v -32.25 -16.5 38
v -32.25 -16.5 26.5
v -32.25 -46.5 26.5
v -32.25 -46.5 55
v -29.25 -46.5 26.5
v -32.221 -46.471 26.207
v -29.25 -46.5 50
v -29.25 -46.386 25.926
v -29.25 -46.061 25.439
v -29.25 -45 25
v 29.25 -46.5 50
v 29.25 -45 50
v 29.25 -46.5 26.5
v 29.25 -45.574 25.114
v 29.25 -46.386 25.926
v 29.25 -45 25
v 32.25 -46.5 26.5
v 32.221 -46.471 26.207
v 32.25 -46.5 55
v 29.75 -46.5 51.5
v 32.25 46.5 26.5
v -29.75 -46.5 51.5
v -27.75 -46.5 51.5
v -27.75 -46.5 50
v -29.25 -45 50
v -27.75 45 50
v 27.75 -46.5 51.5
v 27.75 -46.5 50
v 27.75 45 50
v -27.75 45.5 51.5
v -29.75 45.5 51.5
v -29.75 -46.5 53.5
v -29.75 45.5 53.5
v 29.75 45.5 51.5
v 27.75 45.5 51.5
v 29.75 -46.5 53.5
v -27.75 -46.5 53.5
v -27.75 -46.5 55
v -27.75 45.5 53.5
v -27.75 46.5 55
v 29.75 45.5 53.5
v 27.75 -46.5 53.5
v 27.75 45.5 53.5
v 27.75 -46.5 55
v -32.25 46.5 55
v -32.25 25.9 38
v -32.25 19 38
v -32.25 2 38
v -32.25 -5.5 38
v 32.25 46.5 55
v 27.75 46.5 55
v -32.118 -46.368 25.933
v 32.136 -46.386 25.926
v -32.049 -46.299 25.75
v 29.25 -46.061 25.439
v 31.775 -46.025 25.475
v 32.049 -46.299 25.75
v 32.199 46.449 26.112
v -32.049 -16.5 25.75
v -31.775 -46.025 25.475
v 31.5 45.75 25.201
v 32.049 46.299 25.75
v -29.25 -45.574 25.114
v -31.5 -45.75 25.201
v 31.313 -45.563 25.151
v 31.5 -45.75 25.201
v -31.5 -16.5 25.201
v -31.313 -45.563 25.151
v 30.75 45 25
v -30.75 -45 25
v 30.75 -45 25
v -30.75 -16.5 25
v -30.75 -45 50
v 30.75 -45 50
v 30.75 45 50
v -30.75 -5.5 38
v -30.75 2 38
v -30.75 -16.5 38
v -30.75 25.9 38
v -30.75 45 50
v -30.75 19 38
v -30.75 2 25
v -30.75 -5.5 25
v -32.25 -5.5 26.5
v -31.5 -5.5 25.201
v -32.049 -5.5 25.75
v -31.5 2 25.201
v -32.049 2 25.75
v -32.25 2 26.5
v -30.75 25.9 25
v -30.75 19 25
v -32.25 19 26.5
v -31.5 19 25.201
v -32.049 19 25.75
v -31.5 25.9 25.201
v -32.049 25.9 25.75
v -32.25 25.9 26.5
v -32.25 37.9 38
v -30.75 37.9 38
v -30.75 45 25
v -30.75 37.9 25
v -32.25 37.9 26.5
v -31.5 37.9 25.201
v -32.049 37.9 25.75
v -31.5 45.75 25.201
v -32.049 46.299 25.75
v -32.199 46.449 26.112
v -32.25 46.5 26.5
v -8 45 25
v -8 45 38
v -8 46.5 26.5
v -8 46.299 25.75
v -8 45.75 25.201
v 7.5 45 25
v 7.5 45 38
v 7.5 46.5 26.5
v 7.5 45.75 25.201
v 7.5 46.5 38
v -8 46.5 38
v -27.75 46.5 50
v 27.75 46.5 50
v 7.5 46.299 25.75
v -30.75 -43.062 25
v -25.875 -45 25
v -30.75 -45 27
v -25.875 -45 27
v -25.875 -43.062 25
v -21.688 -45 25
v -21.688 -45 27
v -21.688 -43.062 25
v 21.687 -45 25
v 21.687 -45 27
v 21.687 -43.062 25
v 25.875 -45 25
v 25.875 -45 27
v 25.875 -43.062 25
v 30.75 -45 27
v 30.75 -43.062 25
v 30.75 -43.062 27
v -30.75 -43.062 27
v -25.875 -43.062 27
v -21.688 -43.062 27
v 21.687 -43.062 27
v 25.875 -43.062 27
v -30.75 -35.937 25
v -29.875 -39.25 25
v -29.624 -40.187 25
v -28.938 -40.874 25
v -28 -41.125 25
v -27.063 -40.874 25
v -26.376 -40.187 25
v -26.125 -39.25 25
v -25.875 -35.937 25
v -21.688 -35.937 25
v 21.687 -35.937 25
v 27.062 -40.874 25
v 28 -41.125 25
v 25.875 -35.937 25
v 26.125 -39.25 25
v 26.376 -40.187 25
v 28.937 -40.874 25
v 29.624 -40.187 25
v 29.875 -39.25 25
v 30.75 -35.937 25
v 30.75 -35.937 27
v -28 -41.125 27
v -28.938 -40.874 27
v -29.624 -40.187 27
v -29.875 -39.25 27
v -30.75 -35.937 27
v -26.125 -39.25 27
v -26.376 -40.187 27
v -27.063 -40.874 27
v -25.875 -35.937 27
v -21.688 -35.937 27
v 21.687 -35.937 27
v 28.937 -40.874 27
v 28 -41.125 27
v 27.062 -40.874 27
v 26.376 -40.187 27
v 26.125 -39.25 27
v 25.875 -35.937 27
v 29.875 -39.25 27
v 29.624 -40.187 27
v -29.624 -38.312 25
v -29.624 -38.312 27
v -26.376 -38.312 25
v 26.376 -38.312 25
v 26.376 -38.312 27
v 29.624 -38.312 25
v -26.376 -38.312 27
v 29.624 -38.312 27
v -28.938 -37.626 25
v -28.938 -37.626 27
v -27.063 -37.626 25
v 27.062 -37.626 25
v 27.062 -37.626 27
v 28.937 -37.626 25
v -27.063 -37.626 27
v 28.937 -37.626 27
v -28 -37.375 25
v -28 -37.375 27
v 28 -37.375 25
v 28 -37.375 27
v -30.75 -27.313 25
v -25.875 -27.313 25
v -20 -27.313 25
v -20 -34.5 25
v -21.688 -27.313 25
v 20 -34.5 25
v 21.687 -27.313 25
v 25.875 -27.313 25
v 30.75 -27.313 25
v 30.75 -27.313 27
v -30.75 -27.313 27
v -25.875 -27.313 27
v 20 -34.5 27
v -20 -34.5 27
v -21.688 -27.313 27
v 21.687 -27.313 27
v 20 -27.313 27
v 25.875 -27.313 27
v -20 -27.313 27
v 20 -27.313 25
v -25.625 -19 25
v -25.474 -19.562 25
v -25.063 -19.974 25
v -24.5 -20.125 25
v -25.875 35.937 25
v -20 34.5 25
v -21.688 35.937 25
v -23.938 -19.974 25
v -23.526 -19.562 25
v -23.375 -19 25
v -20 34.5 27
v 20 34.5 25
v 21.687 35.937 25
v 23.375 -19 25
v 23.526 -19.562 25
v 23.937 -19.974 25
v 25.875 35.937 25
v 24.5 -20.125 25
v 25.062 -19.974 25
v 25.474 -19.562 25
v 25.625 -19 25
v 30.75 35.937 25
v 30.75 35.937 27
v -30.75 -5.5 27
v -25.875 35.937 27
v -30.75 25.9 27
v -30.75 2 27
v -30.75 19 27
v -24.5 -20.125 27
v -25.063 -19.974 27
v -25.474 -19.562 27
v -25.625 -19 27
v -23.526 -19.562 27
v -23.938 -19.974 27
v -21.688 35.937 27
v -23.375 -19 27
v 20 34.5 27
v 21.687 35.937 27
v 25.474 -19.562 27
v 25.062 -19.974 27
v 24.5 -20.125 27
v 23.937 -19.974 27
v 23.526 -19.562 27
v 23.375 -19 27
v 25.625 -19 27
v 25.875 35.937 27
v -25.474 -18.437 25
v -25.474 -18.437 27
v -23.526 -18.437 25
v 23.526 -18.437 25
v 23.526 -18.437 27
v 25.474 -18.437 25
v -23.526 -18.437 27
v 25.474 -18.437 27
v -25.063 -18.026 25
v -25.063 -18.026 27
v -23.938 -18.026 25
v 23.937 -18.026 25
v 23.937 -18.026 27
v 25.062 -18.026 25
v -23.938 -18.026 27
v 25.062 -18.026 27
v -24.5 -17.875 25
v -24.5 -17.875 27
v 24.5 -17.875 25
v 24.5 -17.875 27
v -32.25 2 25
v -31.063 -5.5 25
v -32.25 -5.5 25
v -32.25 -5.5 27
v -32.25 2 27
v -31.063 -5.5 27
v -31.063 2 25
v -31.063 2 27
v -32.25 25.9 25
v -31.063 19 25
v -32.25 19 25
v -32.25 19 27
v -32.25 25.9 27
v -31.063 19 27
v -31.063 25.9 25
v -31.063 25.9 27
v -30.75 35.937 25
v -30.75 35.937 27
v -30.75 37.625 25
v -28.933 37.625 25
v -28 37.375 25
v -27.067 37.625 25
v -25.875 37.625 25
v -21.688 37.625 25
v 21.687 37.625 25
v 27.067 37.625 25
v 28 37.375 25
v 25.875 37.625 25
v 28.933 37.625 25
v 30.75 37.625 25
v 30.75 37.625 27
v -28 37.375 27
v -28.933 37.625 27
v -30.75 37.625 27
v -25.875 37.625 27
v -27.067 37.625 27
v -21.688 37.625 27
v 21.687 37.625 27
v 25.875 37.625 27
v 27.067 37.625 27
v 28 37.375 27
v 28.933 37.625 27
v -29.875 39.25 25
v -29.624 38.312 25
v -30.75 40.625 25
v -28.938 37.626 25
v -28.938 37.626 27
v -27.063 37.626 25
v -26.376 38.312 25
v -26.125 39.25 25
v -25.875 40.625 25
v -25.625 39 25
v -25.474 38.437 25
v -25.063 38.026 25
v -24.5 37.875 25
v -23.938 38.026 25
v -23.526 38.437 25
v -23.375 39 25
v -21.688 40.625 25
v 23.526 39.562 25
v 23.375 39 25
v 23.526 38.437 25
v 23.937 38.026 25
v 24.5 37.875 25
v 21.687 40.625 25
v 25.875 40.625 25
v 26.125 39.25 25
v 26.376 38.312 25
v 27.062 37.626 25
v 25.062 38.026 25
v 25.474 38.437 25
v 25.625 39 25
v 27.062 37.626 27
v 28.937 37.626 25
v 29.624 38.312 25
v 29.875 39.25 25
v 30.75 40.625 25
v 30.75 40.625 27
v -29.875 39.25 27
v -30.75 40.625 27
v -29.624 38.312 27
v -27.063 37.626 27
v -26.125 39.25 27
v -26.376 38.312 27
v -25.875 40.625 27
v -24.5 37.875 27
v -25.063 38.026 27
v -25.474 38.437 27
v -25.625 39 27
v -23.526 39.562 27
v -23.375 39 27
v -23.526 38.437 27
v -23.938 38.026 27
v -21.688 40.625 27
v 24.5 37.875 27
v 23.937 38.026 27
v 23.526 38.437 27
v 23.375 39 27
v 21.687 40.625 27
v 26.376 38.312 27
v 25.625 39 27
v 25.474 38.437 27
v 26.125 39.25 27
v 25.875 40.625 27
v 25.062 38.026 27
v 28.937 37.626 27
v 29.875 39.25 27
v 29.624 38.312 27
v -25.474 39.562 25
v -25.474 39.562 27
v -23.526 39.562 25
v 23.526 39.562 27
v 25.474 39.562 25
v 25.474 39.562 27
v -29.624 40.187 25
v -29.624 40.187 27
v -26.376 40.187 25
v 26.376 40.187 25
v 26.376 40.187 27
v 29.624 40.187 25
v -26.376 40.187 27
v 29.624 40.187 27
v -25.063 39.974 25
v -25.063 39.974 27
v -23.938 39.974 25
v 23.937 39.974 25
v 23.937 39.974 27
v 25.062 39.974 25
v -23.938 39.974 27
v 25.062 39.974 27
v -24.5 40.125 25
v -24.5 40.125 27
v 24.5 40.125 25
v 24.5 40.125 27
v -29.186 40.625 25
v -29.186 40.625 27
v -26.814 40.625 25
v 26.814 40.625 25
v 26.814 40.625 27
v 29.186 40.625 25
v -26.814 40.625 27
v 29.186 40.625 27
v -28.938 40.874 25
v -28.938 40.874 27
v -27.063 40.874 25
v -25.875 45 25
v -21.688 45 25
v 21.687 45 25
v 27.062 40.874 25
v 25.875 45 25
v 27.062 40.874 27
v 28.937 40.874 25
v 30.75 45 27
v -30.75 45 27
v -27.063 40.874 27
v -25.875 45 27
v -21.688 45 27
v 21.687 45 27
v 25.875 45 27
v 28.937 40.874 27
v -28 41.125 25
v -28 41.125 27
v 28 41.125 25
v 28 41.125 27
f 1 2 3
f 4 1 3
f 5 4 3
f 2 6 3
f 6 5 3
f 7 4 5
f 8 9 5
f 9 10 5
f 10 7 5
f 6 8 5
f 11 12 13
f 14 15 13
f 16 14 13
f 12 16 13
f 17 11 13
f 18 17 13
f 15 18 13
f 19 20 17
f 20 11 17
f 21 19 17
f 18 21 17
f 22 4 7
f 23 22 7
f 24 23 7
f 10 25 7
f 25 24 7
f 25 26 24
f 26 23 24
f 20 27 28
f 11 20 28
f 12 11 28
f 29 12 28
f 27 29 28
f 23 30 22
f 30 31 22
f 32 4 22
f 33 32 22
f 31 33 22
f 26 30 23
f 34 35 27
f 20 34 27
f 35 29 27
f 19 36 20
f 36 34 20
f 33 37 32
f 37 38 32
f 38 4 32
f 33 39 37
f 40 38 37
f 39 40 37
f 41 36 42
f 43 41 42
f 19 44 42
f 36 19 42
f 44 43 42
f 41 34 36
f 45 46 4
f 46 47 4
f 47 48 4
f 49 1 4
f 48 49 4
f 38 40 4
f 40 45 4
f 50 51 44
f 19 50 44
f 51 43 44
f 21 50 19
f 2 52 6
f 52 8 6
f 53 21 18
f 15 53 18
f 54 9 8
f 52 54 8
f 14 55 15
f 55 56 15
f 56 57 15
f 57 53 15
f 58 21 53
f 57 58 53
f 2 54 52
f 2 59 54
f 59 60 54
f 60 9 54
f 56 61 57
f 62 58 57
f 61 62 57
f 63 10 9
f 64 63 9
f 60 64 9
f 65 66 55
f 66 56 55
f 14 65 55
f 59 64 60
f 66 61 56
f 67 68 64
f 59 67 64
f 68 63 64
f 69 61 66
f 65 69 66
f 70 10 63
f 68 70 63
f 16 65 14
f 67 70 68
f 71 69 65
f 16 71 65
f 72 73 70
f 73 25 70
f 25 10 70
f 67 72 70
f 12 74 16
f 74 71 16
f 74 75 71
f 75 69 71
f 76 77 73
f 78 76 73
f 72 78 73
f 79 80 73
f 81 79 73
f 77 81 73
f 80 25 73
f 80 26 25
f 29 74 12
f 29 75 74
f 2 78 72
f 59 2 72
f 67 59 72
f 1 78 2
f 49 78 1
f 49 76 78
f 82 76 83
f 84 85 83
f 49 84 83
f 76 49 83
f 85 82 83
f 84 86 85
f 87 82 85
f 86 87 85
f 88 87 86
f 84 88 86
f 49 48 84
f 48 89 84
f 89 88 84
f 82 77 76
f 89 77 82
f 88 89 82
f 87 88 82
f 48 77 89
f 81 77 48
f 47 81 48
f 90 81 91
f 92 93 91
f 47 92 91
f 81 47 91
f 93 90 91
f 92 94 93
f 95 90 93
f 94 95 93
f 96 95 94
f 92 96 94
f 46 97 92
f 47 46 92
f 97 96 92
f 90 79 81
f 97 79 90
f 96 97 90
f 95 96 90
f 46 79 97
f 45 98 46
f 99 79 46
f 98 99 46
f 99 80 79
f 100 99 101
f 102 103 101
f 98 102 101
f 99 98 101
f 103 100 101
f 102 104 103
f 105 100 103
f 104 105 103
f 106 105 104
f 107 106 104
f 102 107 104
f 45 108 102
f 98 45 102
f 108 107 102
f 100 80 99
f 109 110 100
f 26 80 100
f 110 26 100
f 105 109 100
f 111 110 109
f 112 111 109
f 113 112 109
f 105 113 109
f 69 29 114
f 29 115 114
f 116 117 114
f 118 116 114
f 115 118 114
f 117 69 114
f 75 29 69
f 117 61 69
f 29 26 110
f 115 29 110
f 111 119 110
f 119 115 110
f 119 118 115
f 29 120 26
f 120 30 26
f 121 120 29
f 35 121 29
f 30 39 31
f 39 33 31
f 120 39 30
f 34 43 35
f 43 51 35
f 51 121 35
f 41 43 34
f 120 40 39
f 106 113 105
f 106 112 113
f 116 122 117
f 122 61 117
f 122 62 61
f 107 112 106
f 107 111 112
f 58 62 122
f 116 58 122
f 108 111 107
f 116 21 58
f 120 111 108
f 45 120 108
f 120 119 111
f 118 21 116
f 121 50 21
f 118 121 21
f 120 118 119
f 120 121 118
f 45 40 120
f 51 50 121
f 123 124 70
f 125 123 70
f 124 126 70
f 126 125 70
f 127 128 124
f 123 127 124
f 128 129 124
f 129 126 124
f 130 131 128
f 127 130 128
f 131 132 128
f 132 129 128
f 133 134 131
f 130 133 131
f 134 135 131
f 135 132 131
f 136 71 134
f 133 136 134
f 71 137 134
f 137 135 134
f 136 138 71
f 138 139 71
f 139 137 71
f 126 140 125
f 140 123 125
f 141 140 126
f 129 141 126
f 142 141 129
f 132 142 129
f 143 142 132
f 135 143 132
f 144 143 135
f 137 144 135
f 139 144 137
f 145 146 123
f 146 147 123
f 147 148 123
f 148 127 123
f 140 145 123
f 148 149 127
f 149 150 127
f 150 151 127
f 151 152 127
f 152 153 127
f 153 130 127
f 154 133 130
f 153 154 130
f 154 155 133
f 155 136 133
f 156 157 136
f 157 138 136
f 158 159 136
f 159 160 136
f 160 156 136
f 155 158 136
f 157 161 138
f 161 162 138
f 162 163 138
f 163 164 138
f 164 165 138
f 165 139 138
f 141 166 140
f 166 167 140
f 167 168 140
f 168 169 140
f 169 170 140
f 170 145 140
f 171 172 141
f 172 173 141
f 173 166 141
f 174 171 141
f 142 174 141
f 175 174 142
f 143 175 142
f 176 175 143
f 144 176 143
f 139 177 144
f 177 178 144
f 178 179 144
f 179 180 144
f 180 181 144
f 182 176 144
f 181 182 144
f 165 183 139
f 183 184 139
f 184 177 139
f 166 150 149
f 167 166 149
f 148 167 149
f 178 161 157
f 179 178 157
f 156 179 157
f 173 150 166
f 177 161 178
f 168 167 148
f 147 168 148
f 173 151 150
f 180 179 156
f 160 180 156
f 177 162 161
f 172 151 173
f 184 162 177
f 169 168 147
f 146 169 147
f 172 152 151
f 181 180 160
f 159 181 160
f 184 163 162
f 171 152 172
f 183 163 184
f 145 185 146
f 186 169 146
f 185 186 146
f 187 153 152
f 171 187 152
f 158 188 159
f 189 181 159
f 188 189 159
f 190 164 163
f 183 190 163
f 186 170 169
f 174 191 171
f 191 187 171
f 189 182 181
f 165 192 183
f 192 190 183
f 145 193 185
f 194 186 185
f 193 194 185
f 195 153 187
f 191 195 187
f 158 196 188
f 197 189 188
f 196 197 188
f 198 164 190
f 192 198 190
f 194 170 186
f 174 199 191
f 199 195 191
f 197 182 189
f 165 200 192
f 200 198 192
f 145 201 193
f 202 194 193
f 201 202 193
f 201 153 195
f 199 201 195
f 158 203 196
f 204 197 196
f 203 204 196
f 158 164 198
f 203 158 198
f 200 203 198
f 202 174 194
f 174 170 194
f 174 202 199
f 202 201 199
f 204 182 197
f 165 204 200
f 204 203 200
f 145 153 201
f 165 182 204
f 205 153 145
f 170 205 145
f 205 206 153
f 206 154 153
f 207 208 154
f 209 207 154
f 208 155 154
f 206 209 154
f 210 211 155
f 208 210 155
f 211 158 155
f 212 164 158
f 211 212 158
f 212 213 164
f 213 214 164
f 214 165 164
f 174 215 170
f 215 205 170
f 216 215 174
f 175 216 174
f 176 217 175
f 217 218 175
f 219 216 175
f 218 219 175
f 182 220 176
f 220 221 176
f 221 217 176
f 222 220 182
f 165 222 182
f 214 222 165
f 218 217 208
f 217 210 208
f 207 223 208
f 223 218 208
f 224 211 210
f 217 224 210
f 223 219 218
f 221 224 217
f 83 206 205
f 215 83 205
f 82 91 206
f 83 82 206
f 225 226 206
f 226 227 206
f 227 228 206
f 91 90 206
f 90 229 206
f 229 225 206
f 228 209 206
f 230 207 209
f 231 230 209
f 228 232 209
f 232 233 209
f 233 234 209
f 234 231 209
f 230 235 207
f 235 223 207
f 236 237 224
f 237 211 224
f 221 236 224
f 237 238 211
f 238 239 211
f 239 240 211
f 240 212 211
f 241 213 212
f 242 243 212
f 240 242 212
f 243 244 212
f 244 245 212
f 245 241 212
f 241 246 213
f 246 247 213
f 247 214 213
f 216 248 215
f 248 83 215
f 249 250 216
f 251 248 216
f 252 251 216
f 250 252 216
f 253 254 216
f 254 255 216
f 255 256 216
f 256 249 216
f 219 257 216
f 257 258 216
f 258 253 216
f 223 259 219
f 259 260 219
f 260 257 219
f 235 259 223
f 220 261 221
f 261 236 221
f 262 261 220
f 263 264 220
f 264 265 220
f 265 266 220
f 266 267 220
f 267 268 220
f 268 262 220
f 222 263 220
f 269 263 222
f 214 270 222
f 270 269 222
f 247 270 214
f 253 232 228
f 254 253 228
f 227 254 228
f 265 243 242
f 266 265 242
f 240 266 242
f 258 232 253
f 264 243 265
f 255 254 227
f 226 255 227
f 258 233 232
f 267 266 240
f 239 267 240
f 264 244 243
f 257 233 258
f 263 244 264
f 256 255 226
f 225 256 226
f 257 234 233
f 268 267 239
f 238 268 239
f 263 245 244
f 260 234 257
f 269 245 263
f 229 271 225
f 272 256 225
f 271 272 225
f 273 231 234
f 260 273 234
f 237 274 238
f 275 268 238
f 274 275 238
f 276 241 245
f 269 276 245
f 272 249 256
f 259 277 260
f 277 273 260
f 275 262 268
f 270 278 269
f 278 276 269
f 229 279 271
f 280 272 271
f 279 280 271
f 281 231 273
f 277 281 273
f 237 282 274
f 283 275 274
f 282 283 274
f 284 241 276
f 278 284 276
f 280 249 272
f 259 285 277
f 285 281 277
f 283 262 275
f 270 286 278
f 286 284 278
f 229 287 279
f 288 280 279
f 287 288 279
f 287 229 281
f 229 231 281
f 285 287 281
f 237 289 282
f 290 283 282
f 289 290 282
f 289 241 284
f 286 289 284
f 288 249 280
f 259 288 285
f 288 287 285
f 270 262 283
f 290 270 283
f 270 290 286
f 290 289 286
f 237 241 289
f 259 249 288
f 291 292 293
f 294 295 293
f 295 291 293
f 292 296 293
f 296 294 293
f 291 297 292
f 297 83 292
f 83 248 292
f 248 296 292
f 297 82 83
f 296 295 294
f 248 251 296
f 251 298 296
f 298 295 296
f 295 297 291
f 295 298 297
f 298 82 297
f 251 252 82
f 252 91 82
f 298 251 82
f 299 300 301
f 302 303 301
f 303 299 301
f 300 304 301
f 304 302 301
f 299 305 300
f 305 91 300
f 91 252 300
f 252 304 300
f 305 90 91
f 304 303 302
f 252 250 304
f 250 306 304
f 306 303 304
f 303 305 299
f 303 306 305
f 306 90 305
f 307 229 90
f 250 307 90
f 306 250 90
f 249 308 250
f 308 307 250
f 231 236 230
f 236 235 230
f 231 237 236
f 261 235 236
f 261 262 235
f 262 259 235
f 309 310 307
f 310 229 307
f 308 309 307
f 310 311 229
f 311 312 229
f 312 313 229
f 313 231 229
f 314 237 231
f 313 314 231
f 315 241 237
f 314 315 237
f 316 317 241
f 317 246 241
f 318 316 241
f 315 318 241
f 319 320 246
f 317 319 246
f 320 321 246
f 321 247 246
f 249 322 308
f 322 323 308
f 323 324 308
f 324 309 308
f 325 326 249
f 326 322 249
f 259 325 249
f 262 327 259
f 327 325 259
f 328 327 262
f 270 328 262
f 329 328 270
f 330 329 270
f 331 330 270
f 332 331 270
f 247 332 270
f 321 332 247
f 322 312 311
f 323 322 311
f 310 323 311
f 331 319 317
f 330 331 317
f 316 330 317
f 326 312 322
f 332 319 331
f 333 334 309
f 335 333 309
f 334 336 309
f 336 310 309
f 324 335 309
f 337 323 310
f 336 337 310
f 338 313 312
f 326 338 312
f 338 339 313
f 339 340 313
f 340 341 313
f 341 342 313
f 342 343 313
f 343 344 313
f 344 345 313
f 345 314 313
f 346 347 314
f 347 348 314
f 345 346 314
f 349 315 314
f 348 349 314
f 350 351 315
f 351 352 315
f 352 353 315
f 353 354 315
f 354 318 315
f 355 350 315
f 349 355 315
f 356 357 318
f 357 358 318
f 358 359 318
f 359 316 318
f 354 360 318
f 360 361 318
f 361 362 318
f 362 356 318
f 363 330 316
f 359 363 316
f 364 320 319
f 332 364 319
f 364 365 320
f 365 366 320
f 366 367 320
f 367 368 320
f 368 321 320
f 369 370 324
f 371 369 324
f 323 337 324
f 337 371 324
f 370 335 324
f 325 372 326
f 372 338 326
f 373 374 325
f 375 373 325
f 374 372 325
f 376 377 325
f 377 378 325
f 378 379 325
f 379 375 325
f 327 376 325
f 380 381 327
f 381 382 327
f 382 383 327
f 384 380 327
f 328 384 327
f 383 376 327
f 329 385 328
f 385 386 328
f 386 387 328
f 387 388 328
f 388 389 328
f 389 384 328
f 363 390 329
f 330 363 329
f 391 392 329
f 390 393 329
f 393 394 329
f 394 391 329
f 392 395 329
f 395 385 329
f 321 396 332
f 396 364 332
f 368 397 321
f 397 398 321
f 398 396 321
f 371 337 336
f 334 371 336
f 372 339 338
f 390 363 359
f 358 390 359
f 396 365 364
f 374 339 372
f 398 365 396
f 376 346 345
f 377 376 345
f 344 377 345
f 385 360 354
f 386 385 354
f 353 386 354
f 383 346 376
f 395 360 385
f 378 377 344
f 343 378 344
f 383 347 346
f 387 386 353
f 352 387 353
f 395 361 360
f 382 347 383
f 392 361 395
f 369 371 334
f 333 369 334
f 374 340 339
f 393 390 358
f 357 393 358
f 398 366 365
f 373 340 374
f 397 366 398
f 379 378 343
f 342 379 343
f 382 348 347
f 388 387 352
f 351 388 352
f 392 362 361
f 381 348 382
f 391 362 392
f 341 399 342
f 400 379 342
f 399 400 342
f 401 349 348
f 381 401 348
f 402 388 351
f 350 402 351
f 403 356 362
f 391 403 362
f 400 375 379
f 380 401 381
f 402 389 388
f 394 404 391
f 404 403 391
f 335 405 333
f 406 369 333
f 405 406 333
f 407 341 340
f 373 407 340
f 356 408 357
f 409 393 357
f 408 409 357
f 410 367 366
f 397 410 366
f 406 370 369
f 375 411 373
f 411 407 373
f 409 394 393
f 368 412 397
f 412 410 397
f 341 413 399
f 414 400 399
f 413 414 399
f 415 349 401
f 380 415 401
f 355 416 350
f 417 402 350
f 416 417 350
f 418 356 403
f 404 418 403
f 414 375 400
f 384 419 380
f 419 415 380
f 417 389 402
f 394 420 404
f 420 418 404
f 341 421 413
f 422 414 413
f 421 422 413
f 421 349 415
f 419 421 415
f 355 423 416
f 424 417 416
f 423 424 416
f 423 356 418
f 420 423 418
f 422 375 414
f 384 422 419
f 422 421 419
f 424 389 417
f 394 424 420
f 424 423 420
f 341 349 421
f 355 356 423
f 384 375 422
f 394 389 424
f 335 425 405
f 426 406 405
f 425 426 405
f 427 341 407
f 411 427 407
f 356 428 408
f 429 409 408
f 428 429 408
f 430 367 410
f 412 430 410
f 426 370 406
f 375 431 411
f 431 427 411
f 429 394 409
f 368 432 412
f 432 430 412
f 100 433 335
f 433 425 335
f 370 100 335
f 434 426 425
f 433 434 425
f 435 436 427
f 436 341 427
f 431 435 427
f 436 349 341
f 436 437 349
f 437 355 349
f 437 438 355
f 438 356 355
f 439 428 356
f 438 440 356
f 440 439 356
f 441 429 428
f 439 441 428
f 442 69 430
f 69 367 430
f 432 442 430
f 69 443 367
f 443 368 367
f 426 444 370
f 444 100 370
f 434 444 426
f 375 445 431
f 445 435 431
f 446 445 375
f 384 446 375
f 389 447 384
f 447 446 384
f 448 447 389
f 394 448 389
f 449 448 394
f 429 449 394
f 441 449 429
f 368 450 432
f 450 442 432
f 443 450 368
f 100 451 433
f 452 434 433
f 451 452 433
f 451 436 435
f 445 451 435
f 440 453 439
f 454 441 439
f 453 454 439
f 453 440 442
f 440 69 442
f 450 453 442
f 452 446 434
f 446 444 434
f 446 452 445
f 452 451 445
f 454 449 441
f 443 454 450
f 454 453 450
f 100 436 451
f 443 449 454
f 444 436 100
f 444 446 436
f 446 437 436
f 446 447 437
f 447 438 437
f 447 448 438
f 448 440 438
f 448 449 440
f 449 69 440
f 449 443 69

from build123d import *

# Parameters (mm, degrees)
BOSS_EXTRUDE8_START  = 25
SKETCH2_R            = 1.125
SKETCH2_W            = 40
SKETCH2_H            = 69
BOSS_EXTRUDE8_DEPTH  = 2
BOSS_EXTRUDE9_START  = 25
BOSS_EXTRUDE9_DEPTH  = 25
CUT_EXTRUDE5_START   = 25
SKETCH2_9_W          = 1.5
SKETCH2_9_H          = 17
SKETCH2_9_H_2        = 11
SKETCH2_9_H_3        = 12
CUT_EXTRUDE5_DEPTH   = 13
FILLET2_R            = 1.5
BOSS_EXTRUDE10_DEPTH = 4.5
SKETCH3_3_W          = 2
SKETCH3_3_H          = 92
BOSS_EXTRUDE11_DEPTH = 2.5
BOSS_EXTRUDE12_DEPTH = 4.5
SKETCH4_3_W          = 2
SKETCH4_3_H          = 92
BOSS_EXTRUDE13_DEPTH = 2.5
SKETCH5_R            = 1.875
CUT_EXTRUDE6_DEPTH   = 2


with BuildPart() as part:
    # Sketch2 → Boss-Extrude8 (new body)
    with BuildSketch(Plane.XY.offset(BOSS_EXTRUDE8_START)):
        Polygon((-30.75, -45), (30.75, -45), (30.75, 45), (-30.75, 45), (-30.75, 25.9), (-32.25, 25.9), (-32.25, 19), (-30.75, 19), (-30.75, 2), (-32.25, 2), (-32.25, -5.5), (-30.75, -5.5), align=None)
        with Locations((-24.5, -19)):
            Circle(SKETCH2_R, mode=Mode.SUBTRACT)
        Rectangle(SKETCH2_W, SKETCH2_H, mode=Mode.SUBTRACT)
        with Locations((24.5, -19)):
            Circle(SKETCH2_R, mode=Mode.SUBTRACT)
        with Locations((-24.5, 39)):
            Circle(SKETCH2_R, mode=Mode.SUBTRACT)
        with Locations((24.5, 39)):
            Circle(SKETCH2_R, mode=Mode.SUBTRACT)
    extrude(amount=BOSS_EXTRUDE8_DEPTH)

    # Sketch5 → Cut-Extrude6 (cut)
    with BuildSketch(Plane(origin=(0, 0, 25), x_dir=(-1, 0, 0), z_dir=(0, 0, -1))):
        with Locations((-28, 39.25)):
            Circle(SKETCH5_R)
        with Locations((28, 39.25)):
            Circle(SKETCH5_R)
        with Locations((28, -39.25)):
            Circle(SKETCH5_R)
        with Locations((-28, -39.25)):
            Circle(SKETCH5_R)
    extrude(amount=-CUT_EXTRUDE6_DEPTH, mode=Mode.SUBTRACT)


with BuildPart() as body_2:
    # Sketch2<8> → Boss-Extrude9 (new body)
    with BuildSketch(Plane.XY.offset(BOSS_EXTRUDE9_START)):
        Polygon((-32.25, 46.5), (-32.25, -46.5), (-29.25, -46.5), (-29.25, -45), (-30.75, -45), (-30.75, 45), (30.75, 45), (30.75, -45), (29.25, -45), (29.25, -46.5), (32.25, -46.5), (32.25, 46.5), align=None)
    extrude(amount=BOSS_EXTRUDE9_DEPTH)

    # Sketch2<9> → Cut-Extrude5 (cut)
    with BuildSketch(Plane.XY.offset(CUT_EXTRUDE5_START)):
        with Locations((-31.5, 10.5)):
            Rectangle(SKETCH2_9_W, SKETCH2_9_H)
        with Locations((-31.5, -11)):
            Rectangle(SKETCH2_9_W, SKETCH2_9_H_2)
        with Locations((-31.5, 31.9)):
            Rectangle(SKETCH2_9_W, SKETCH2_9_H_3)
        Polygon((-8, 46.5), (-8, 45), (7.5, 45), (7.5, 46.5), (0, 46.5), align=None)
    extrude(amount=CUT_EXTRUDE5_DEPTH, mode=Mode.SUBTRACT)

    # Fillet2
    fillet2_edges = [body_2.edges().sort_by_distance(p)[0] for p in [
        (-30.75, -46.5, 25),
        (30.75, -46.5, 25),
        (32.25, 0, 25),
        (19.875, 46.5, 25),
        (-20.125, 46.5, 25),
        (-32.25, 42.2, 25),
        (-32.25, 22.45, 25),
        (-32.25, -1.75, 25),
        (-32.25, -31.5, 25),
    ]]
    fillet(fillet2_edges, radius=FILLET2_R - 0.0001)  # a hair under: the kernel refuses the full size

    # Sketch3 → Boss-Extrude10 (add)
    with BuildSketch(Plane(origin=(32.25, 0, 0), x_dir=(0, 0, -1), z_dir=(1, 0, 0))):
        Polygon((-51.5, -46.5), (-50, -46.5), (-50, 46.5), (-55, 46.5), (-55, -46.5), (-53.5, -46.5), (-53.5, 45.5), (-51.5, 45.5), align=None)
    extrude(amount=-BOSS_EXTRUDE10_DEPTH)

    # Sketch3<3> → Boss-Extrude11 (add)
    with BuildSketch(Plane(origin=(32.25, 0, 0), x_dir=(0, 0, -1), z_dir=(1, 0, 0))):
        with Locations((-52.5, -0.5)):
            Rectangle(SKETCH3_3_W, SKETCH3_3_H)
    extrude(amount=-BOSS_EXTRUDE11_DEPTH)

    # Sketch4 → Boss-Extrude12 (add)
    with BuildSketch(Plane.ZY.offset(32.25)):
        Polygon((50, 46.5), (50, -46.5), (51.5, -46.5), (51.5, 45.5), (53.5, 45.5), (53.5, -46.5), (55, -46.5), (55, 46.5), align=None)
    extrude(amount=-BOSS_EXTRUDE12_DEPTH)

    # Sketch4<3> → Boss-Extrude13 (add)
    with BuildSketch(Plane.ZY.offset(32.25)):
        with Locations((52.5, -0.5)):
            Rectangle(SKETCH4_3_W, SKETCH4_3_H)
    extrude(amount=-BOSS_EXTRUDE13_DEPTH)


solid = Compound([part.part, body_2.part])
